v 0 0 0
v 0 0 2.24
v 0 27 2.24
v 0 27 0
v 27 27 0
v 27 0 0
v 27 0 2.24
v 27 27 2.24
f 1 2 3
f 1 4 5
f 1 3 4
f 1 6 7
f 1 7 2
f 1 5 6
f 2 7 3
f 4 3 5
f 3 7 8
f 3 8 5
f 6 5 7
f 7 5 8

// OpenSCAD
/* Warning, this is a very basic generator with a lot of approximation 
input data : [BGA, CCC, 27x27x2.24mm, 672, , A, C04-25204A]
generated by com.zoubworld.electronics.cad.model3d.Basic
Date : Sun Feb 15 10:50:49 CET 2026
*/

//body
color("black")
translate([0,0,0])
cube([27.0,27.0,2.24], center=false);
